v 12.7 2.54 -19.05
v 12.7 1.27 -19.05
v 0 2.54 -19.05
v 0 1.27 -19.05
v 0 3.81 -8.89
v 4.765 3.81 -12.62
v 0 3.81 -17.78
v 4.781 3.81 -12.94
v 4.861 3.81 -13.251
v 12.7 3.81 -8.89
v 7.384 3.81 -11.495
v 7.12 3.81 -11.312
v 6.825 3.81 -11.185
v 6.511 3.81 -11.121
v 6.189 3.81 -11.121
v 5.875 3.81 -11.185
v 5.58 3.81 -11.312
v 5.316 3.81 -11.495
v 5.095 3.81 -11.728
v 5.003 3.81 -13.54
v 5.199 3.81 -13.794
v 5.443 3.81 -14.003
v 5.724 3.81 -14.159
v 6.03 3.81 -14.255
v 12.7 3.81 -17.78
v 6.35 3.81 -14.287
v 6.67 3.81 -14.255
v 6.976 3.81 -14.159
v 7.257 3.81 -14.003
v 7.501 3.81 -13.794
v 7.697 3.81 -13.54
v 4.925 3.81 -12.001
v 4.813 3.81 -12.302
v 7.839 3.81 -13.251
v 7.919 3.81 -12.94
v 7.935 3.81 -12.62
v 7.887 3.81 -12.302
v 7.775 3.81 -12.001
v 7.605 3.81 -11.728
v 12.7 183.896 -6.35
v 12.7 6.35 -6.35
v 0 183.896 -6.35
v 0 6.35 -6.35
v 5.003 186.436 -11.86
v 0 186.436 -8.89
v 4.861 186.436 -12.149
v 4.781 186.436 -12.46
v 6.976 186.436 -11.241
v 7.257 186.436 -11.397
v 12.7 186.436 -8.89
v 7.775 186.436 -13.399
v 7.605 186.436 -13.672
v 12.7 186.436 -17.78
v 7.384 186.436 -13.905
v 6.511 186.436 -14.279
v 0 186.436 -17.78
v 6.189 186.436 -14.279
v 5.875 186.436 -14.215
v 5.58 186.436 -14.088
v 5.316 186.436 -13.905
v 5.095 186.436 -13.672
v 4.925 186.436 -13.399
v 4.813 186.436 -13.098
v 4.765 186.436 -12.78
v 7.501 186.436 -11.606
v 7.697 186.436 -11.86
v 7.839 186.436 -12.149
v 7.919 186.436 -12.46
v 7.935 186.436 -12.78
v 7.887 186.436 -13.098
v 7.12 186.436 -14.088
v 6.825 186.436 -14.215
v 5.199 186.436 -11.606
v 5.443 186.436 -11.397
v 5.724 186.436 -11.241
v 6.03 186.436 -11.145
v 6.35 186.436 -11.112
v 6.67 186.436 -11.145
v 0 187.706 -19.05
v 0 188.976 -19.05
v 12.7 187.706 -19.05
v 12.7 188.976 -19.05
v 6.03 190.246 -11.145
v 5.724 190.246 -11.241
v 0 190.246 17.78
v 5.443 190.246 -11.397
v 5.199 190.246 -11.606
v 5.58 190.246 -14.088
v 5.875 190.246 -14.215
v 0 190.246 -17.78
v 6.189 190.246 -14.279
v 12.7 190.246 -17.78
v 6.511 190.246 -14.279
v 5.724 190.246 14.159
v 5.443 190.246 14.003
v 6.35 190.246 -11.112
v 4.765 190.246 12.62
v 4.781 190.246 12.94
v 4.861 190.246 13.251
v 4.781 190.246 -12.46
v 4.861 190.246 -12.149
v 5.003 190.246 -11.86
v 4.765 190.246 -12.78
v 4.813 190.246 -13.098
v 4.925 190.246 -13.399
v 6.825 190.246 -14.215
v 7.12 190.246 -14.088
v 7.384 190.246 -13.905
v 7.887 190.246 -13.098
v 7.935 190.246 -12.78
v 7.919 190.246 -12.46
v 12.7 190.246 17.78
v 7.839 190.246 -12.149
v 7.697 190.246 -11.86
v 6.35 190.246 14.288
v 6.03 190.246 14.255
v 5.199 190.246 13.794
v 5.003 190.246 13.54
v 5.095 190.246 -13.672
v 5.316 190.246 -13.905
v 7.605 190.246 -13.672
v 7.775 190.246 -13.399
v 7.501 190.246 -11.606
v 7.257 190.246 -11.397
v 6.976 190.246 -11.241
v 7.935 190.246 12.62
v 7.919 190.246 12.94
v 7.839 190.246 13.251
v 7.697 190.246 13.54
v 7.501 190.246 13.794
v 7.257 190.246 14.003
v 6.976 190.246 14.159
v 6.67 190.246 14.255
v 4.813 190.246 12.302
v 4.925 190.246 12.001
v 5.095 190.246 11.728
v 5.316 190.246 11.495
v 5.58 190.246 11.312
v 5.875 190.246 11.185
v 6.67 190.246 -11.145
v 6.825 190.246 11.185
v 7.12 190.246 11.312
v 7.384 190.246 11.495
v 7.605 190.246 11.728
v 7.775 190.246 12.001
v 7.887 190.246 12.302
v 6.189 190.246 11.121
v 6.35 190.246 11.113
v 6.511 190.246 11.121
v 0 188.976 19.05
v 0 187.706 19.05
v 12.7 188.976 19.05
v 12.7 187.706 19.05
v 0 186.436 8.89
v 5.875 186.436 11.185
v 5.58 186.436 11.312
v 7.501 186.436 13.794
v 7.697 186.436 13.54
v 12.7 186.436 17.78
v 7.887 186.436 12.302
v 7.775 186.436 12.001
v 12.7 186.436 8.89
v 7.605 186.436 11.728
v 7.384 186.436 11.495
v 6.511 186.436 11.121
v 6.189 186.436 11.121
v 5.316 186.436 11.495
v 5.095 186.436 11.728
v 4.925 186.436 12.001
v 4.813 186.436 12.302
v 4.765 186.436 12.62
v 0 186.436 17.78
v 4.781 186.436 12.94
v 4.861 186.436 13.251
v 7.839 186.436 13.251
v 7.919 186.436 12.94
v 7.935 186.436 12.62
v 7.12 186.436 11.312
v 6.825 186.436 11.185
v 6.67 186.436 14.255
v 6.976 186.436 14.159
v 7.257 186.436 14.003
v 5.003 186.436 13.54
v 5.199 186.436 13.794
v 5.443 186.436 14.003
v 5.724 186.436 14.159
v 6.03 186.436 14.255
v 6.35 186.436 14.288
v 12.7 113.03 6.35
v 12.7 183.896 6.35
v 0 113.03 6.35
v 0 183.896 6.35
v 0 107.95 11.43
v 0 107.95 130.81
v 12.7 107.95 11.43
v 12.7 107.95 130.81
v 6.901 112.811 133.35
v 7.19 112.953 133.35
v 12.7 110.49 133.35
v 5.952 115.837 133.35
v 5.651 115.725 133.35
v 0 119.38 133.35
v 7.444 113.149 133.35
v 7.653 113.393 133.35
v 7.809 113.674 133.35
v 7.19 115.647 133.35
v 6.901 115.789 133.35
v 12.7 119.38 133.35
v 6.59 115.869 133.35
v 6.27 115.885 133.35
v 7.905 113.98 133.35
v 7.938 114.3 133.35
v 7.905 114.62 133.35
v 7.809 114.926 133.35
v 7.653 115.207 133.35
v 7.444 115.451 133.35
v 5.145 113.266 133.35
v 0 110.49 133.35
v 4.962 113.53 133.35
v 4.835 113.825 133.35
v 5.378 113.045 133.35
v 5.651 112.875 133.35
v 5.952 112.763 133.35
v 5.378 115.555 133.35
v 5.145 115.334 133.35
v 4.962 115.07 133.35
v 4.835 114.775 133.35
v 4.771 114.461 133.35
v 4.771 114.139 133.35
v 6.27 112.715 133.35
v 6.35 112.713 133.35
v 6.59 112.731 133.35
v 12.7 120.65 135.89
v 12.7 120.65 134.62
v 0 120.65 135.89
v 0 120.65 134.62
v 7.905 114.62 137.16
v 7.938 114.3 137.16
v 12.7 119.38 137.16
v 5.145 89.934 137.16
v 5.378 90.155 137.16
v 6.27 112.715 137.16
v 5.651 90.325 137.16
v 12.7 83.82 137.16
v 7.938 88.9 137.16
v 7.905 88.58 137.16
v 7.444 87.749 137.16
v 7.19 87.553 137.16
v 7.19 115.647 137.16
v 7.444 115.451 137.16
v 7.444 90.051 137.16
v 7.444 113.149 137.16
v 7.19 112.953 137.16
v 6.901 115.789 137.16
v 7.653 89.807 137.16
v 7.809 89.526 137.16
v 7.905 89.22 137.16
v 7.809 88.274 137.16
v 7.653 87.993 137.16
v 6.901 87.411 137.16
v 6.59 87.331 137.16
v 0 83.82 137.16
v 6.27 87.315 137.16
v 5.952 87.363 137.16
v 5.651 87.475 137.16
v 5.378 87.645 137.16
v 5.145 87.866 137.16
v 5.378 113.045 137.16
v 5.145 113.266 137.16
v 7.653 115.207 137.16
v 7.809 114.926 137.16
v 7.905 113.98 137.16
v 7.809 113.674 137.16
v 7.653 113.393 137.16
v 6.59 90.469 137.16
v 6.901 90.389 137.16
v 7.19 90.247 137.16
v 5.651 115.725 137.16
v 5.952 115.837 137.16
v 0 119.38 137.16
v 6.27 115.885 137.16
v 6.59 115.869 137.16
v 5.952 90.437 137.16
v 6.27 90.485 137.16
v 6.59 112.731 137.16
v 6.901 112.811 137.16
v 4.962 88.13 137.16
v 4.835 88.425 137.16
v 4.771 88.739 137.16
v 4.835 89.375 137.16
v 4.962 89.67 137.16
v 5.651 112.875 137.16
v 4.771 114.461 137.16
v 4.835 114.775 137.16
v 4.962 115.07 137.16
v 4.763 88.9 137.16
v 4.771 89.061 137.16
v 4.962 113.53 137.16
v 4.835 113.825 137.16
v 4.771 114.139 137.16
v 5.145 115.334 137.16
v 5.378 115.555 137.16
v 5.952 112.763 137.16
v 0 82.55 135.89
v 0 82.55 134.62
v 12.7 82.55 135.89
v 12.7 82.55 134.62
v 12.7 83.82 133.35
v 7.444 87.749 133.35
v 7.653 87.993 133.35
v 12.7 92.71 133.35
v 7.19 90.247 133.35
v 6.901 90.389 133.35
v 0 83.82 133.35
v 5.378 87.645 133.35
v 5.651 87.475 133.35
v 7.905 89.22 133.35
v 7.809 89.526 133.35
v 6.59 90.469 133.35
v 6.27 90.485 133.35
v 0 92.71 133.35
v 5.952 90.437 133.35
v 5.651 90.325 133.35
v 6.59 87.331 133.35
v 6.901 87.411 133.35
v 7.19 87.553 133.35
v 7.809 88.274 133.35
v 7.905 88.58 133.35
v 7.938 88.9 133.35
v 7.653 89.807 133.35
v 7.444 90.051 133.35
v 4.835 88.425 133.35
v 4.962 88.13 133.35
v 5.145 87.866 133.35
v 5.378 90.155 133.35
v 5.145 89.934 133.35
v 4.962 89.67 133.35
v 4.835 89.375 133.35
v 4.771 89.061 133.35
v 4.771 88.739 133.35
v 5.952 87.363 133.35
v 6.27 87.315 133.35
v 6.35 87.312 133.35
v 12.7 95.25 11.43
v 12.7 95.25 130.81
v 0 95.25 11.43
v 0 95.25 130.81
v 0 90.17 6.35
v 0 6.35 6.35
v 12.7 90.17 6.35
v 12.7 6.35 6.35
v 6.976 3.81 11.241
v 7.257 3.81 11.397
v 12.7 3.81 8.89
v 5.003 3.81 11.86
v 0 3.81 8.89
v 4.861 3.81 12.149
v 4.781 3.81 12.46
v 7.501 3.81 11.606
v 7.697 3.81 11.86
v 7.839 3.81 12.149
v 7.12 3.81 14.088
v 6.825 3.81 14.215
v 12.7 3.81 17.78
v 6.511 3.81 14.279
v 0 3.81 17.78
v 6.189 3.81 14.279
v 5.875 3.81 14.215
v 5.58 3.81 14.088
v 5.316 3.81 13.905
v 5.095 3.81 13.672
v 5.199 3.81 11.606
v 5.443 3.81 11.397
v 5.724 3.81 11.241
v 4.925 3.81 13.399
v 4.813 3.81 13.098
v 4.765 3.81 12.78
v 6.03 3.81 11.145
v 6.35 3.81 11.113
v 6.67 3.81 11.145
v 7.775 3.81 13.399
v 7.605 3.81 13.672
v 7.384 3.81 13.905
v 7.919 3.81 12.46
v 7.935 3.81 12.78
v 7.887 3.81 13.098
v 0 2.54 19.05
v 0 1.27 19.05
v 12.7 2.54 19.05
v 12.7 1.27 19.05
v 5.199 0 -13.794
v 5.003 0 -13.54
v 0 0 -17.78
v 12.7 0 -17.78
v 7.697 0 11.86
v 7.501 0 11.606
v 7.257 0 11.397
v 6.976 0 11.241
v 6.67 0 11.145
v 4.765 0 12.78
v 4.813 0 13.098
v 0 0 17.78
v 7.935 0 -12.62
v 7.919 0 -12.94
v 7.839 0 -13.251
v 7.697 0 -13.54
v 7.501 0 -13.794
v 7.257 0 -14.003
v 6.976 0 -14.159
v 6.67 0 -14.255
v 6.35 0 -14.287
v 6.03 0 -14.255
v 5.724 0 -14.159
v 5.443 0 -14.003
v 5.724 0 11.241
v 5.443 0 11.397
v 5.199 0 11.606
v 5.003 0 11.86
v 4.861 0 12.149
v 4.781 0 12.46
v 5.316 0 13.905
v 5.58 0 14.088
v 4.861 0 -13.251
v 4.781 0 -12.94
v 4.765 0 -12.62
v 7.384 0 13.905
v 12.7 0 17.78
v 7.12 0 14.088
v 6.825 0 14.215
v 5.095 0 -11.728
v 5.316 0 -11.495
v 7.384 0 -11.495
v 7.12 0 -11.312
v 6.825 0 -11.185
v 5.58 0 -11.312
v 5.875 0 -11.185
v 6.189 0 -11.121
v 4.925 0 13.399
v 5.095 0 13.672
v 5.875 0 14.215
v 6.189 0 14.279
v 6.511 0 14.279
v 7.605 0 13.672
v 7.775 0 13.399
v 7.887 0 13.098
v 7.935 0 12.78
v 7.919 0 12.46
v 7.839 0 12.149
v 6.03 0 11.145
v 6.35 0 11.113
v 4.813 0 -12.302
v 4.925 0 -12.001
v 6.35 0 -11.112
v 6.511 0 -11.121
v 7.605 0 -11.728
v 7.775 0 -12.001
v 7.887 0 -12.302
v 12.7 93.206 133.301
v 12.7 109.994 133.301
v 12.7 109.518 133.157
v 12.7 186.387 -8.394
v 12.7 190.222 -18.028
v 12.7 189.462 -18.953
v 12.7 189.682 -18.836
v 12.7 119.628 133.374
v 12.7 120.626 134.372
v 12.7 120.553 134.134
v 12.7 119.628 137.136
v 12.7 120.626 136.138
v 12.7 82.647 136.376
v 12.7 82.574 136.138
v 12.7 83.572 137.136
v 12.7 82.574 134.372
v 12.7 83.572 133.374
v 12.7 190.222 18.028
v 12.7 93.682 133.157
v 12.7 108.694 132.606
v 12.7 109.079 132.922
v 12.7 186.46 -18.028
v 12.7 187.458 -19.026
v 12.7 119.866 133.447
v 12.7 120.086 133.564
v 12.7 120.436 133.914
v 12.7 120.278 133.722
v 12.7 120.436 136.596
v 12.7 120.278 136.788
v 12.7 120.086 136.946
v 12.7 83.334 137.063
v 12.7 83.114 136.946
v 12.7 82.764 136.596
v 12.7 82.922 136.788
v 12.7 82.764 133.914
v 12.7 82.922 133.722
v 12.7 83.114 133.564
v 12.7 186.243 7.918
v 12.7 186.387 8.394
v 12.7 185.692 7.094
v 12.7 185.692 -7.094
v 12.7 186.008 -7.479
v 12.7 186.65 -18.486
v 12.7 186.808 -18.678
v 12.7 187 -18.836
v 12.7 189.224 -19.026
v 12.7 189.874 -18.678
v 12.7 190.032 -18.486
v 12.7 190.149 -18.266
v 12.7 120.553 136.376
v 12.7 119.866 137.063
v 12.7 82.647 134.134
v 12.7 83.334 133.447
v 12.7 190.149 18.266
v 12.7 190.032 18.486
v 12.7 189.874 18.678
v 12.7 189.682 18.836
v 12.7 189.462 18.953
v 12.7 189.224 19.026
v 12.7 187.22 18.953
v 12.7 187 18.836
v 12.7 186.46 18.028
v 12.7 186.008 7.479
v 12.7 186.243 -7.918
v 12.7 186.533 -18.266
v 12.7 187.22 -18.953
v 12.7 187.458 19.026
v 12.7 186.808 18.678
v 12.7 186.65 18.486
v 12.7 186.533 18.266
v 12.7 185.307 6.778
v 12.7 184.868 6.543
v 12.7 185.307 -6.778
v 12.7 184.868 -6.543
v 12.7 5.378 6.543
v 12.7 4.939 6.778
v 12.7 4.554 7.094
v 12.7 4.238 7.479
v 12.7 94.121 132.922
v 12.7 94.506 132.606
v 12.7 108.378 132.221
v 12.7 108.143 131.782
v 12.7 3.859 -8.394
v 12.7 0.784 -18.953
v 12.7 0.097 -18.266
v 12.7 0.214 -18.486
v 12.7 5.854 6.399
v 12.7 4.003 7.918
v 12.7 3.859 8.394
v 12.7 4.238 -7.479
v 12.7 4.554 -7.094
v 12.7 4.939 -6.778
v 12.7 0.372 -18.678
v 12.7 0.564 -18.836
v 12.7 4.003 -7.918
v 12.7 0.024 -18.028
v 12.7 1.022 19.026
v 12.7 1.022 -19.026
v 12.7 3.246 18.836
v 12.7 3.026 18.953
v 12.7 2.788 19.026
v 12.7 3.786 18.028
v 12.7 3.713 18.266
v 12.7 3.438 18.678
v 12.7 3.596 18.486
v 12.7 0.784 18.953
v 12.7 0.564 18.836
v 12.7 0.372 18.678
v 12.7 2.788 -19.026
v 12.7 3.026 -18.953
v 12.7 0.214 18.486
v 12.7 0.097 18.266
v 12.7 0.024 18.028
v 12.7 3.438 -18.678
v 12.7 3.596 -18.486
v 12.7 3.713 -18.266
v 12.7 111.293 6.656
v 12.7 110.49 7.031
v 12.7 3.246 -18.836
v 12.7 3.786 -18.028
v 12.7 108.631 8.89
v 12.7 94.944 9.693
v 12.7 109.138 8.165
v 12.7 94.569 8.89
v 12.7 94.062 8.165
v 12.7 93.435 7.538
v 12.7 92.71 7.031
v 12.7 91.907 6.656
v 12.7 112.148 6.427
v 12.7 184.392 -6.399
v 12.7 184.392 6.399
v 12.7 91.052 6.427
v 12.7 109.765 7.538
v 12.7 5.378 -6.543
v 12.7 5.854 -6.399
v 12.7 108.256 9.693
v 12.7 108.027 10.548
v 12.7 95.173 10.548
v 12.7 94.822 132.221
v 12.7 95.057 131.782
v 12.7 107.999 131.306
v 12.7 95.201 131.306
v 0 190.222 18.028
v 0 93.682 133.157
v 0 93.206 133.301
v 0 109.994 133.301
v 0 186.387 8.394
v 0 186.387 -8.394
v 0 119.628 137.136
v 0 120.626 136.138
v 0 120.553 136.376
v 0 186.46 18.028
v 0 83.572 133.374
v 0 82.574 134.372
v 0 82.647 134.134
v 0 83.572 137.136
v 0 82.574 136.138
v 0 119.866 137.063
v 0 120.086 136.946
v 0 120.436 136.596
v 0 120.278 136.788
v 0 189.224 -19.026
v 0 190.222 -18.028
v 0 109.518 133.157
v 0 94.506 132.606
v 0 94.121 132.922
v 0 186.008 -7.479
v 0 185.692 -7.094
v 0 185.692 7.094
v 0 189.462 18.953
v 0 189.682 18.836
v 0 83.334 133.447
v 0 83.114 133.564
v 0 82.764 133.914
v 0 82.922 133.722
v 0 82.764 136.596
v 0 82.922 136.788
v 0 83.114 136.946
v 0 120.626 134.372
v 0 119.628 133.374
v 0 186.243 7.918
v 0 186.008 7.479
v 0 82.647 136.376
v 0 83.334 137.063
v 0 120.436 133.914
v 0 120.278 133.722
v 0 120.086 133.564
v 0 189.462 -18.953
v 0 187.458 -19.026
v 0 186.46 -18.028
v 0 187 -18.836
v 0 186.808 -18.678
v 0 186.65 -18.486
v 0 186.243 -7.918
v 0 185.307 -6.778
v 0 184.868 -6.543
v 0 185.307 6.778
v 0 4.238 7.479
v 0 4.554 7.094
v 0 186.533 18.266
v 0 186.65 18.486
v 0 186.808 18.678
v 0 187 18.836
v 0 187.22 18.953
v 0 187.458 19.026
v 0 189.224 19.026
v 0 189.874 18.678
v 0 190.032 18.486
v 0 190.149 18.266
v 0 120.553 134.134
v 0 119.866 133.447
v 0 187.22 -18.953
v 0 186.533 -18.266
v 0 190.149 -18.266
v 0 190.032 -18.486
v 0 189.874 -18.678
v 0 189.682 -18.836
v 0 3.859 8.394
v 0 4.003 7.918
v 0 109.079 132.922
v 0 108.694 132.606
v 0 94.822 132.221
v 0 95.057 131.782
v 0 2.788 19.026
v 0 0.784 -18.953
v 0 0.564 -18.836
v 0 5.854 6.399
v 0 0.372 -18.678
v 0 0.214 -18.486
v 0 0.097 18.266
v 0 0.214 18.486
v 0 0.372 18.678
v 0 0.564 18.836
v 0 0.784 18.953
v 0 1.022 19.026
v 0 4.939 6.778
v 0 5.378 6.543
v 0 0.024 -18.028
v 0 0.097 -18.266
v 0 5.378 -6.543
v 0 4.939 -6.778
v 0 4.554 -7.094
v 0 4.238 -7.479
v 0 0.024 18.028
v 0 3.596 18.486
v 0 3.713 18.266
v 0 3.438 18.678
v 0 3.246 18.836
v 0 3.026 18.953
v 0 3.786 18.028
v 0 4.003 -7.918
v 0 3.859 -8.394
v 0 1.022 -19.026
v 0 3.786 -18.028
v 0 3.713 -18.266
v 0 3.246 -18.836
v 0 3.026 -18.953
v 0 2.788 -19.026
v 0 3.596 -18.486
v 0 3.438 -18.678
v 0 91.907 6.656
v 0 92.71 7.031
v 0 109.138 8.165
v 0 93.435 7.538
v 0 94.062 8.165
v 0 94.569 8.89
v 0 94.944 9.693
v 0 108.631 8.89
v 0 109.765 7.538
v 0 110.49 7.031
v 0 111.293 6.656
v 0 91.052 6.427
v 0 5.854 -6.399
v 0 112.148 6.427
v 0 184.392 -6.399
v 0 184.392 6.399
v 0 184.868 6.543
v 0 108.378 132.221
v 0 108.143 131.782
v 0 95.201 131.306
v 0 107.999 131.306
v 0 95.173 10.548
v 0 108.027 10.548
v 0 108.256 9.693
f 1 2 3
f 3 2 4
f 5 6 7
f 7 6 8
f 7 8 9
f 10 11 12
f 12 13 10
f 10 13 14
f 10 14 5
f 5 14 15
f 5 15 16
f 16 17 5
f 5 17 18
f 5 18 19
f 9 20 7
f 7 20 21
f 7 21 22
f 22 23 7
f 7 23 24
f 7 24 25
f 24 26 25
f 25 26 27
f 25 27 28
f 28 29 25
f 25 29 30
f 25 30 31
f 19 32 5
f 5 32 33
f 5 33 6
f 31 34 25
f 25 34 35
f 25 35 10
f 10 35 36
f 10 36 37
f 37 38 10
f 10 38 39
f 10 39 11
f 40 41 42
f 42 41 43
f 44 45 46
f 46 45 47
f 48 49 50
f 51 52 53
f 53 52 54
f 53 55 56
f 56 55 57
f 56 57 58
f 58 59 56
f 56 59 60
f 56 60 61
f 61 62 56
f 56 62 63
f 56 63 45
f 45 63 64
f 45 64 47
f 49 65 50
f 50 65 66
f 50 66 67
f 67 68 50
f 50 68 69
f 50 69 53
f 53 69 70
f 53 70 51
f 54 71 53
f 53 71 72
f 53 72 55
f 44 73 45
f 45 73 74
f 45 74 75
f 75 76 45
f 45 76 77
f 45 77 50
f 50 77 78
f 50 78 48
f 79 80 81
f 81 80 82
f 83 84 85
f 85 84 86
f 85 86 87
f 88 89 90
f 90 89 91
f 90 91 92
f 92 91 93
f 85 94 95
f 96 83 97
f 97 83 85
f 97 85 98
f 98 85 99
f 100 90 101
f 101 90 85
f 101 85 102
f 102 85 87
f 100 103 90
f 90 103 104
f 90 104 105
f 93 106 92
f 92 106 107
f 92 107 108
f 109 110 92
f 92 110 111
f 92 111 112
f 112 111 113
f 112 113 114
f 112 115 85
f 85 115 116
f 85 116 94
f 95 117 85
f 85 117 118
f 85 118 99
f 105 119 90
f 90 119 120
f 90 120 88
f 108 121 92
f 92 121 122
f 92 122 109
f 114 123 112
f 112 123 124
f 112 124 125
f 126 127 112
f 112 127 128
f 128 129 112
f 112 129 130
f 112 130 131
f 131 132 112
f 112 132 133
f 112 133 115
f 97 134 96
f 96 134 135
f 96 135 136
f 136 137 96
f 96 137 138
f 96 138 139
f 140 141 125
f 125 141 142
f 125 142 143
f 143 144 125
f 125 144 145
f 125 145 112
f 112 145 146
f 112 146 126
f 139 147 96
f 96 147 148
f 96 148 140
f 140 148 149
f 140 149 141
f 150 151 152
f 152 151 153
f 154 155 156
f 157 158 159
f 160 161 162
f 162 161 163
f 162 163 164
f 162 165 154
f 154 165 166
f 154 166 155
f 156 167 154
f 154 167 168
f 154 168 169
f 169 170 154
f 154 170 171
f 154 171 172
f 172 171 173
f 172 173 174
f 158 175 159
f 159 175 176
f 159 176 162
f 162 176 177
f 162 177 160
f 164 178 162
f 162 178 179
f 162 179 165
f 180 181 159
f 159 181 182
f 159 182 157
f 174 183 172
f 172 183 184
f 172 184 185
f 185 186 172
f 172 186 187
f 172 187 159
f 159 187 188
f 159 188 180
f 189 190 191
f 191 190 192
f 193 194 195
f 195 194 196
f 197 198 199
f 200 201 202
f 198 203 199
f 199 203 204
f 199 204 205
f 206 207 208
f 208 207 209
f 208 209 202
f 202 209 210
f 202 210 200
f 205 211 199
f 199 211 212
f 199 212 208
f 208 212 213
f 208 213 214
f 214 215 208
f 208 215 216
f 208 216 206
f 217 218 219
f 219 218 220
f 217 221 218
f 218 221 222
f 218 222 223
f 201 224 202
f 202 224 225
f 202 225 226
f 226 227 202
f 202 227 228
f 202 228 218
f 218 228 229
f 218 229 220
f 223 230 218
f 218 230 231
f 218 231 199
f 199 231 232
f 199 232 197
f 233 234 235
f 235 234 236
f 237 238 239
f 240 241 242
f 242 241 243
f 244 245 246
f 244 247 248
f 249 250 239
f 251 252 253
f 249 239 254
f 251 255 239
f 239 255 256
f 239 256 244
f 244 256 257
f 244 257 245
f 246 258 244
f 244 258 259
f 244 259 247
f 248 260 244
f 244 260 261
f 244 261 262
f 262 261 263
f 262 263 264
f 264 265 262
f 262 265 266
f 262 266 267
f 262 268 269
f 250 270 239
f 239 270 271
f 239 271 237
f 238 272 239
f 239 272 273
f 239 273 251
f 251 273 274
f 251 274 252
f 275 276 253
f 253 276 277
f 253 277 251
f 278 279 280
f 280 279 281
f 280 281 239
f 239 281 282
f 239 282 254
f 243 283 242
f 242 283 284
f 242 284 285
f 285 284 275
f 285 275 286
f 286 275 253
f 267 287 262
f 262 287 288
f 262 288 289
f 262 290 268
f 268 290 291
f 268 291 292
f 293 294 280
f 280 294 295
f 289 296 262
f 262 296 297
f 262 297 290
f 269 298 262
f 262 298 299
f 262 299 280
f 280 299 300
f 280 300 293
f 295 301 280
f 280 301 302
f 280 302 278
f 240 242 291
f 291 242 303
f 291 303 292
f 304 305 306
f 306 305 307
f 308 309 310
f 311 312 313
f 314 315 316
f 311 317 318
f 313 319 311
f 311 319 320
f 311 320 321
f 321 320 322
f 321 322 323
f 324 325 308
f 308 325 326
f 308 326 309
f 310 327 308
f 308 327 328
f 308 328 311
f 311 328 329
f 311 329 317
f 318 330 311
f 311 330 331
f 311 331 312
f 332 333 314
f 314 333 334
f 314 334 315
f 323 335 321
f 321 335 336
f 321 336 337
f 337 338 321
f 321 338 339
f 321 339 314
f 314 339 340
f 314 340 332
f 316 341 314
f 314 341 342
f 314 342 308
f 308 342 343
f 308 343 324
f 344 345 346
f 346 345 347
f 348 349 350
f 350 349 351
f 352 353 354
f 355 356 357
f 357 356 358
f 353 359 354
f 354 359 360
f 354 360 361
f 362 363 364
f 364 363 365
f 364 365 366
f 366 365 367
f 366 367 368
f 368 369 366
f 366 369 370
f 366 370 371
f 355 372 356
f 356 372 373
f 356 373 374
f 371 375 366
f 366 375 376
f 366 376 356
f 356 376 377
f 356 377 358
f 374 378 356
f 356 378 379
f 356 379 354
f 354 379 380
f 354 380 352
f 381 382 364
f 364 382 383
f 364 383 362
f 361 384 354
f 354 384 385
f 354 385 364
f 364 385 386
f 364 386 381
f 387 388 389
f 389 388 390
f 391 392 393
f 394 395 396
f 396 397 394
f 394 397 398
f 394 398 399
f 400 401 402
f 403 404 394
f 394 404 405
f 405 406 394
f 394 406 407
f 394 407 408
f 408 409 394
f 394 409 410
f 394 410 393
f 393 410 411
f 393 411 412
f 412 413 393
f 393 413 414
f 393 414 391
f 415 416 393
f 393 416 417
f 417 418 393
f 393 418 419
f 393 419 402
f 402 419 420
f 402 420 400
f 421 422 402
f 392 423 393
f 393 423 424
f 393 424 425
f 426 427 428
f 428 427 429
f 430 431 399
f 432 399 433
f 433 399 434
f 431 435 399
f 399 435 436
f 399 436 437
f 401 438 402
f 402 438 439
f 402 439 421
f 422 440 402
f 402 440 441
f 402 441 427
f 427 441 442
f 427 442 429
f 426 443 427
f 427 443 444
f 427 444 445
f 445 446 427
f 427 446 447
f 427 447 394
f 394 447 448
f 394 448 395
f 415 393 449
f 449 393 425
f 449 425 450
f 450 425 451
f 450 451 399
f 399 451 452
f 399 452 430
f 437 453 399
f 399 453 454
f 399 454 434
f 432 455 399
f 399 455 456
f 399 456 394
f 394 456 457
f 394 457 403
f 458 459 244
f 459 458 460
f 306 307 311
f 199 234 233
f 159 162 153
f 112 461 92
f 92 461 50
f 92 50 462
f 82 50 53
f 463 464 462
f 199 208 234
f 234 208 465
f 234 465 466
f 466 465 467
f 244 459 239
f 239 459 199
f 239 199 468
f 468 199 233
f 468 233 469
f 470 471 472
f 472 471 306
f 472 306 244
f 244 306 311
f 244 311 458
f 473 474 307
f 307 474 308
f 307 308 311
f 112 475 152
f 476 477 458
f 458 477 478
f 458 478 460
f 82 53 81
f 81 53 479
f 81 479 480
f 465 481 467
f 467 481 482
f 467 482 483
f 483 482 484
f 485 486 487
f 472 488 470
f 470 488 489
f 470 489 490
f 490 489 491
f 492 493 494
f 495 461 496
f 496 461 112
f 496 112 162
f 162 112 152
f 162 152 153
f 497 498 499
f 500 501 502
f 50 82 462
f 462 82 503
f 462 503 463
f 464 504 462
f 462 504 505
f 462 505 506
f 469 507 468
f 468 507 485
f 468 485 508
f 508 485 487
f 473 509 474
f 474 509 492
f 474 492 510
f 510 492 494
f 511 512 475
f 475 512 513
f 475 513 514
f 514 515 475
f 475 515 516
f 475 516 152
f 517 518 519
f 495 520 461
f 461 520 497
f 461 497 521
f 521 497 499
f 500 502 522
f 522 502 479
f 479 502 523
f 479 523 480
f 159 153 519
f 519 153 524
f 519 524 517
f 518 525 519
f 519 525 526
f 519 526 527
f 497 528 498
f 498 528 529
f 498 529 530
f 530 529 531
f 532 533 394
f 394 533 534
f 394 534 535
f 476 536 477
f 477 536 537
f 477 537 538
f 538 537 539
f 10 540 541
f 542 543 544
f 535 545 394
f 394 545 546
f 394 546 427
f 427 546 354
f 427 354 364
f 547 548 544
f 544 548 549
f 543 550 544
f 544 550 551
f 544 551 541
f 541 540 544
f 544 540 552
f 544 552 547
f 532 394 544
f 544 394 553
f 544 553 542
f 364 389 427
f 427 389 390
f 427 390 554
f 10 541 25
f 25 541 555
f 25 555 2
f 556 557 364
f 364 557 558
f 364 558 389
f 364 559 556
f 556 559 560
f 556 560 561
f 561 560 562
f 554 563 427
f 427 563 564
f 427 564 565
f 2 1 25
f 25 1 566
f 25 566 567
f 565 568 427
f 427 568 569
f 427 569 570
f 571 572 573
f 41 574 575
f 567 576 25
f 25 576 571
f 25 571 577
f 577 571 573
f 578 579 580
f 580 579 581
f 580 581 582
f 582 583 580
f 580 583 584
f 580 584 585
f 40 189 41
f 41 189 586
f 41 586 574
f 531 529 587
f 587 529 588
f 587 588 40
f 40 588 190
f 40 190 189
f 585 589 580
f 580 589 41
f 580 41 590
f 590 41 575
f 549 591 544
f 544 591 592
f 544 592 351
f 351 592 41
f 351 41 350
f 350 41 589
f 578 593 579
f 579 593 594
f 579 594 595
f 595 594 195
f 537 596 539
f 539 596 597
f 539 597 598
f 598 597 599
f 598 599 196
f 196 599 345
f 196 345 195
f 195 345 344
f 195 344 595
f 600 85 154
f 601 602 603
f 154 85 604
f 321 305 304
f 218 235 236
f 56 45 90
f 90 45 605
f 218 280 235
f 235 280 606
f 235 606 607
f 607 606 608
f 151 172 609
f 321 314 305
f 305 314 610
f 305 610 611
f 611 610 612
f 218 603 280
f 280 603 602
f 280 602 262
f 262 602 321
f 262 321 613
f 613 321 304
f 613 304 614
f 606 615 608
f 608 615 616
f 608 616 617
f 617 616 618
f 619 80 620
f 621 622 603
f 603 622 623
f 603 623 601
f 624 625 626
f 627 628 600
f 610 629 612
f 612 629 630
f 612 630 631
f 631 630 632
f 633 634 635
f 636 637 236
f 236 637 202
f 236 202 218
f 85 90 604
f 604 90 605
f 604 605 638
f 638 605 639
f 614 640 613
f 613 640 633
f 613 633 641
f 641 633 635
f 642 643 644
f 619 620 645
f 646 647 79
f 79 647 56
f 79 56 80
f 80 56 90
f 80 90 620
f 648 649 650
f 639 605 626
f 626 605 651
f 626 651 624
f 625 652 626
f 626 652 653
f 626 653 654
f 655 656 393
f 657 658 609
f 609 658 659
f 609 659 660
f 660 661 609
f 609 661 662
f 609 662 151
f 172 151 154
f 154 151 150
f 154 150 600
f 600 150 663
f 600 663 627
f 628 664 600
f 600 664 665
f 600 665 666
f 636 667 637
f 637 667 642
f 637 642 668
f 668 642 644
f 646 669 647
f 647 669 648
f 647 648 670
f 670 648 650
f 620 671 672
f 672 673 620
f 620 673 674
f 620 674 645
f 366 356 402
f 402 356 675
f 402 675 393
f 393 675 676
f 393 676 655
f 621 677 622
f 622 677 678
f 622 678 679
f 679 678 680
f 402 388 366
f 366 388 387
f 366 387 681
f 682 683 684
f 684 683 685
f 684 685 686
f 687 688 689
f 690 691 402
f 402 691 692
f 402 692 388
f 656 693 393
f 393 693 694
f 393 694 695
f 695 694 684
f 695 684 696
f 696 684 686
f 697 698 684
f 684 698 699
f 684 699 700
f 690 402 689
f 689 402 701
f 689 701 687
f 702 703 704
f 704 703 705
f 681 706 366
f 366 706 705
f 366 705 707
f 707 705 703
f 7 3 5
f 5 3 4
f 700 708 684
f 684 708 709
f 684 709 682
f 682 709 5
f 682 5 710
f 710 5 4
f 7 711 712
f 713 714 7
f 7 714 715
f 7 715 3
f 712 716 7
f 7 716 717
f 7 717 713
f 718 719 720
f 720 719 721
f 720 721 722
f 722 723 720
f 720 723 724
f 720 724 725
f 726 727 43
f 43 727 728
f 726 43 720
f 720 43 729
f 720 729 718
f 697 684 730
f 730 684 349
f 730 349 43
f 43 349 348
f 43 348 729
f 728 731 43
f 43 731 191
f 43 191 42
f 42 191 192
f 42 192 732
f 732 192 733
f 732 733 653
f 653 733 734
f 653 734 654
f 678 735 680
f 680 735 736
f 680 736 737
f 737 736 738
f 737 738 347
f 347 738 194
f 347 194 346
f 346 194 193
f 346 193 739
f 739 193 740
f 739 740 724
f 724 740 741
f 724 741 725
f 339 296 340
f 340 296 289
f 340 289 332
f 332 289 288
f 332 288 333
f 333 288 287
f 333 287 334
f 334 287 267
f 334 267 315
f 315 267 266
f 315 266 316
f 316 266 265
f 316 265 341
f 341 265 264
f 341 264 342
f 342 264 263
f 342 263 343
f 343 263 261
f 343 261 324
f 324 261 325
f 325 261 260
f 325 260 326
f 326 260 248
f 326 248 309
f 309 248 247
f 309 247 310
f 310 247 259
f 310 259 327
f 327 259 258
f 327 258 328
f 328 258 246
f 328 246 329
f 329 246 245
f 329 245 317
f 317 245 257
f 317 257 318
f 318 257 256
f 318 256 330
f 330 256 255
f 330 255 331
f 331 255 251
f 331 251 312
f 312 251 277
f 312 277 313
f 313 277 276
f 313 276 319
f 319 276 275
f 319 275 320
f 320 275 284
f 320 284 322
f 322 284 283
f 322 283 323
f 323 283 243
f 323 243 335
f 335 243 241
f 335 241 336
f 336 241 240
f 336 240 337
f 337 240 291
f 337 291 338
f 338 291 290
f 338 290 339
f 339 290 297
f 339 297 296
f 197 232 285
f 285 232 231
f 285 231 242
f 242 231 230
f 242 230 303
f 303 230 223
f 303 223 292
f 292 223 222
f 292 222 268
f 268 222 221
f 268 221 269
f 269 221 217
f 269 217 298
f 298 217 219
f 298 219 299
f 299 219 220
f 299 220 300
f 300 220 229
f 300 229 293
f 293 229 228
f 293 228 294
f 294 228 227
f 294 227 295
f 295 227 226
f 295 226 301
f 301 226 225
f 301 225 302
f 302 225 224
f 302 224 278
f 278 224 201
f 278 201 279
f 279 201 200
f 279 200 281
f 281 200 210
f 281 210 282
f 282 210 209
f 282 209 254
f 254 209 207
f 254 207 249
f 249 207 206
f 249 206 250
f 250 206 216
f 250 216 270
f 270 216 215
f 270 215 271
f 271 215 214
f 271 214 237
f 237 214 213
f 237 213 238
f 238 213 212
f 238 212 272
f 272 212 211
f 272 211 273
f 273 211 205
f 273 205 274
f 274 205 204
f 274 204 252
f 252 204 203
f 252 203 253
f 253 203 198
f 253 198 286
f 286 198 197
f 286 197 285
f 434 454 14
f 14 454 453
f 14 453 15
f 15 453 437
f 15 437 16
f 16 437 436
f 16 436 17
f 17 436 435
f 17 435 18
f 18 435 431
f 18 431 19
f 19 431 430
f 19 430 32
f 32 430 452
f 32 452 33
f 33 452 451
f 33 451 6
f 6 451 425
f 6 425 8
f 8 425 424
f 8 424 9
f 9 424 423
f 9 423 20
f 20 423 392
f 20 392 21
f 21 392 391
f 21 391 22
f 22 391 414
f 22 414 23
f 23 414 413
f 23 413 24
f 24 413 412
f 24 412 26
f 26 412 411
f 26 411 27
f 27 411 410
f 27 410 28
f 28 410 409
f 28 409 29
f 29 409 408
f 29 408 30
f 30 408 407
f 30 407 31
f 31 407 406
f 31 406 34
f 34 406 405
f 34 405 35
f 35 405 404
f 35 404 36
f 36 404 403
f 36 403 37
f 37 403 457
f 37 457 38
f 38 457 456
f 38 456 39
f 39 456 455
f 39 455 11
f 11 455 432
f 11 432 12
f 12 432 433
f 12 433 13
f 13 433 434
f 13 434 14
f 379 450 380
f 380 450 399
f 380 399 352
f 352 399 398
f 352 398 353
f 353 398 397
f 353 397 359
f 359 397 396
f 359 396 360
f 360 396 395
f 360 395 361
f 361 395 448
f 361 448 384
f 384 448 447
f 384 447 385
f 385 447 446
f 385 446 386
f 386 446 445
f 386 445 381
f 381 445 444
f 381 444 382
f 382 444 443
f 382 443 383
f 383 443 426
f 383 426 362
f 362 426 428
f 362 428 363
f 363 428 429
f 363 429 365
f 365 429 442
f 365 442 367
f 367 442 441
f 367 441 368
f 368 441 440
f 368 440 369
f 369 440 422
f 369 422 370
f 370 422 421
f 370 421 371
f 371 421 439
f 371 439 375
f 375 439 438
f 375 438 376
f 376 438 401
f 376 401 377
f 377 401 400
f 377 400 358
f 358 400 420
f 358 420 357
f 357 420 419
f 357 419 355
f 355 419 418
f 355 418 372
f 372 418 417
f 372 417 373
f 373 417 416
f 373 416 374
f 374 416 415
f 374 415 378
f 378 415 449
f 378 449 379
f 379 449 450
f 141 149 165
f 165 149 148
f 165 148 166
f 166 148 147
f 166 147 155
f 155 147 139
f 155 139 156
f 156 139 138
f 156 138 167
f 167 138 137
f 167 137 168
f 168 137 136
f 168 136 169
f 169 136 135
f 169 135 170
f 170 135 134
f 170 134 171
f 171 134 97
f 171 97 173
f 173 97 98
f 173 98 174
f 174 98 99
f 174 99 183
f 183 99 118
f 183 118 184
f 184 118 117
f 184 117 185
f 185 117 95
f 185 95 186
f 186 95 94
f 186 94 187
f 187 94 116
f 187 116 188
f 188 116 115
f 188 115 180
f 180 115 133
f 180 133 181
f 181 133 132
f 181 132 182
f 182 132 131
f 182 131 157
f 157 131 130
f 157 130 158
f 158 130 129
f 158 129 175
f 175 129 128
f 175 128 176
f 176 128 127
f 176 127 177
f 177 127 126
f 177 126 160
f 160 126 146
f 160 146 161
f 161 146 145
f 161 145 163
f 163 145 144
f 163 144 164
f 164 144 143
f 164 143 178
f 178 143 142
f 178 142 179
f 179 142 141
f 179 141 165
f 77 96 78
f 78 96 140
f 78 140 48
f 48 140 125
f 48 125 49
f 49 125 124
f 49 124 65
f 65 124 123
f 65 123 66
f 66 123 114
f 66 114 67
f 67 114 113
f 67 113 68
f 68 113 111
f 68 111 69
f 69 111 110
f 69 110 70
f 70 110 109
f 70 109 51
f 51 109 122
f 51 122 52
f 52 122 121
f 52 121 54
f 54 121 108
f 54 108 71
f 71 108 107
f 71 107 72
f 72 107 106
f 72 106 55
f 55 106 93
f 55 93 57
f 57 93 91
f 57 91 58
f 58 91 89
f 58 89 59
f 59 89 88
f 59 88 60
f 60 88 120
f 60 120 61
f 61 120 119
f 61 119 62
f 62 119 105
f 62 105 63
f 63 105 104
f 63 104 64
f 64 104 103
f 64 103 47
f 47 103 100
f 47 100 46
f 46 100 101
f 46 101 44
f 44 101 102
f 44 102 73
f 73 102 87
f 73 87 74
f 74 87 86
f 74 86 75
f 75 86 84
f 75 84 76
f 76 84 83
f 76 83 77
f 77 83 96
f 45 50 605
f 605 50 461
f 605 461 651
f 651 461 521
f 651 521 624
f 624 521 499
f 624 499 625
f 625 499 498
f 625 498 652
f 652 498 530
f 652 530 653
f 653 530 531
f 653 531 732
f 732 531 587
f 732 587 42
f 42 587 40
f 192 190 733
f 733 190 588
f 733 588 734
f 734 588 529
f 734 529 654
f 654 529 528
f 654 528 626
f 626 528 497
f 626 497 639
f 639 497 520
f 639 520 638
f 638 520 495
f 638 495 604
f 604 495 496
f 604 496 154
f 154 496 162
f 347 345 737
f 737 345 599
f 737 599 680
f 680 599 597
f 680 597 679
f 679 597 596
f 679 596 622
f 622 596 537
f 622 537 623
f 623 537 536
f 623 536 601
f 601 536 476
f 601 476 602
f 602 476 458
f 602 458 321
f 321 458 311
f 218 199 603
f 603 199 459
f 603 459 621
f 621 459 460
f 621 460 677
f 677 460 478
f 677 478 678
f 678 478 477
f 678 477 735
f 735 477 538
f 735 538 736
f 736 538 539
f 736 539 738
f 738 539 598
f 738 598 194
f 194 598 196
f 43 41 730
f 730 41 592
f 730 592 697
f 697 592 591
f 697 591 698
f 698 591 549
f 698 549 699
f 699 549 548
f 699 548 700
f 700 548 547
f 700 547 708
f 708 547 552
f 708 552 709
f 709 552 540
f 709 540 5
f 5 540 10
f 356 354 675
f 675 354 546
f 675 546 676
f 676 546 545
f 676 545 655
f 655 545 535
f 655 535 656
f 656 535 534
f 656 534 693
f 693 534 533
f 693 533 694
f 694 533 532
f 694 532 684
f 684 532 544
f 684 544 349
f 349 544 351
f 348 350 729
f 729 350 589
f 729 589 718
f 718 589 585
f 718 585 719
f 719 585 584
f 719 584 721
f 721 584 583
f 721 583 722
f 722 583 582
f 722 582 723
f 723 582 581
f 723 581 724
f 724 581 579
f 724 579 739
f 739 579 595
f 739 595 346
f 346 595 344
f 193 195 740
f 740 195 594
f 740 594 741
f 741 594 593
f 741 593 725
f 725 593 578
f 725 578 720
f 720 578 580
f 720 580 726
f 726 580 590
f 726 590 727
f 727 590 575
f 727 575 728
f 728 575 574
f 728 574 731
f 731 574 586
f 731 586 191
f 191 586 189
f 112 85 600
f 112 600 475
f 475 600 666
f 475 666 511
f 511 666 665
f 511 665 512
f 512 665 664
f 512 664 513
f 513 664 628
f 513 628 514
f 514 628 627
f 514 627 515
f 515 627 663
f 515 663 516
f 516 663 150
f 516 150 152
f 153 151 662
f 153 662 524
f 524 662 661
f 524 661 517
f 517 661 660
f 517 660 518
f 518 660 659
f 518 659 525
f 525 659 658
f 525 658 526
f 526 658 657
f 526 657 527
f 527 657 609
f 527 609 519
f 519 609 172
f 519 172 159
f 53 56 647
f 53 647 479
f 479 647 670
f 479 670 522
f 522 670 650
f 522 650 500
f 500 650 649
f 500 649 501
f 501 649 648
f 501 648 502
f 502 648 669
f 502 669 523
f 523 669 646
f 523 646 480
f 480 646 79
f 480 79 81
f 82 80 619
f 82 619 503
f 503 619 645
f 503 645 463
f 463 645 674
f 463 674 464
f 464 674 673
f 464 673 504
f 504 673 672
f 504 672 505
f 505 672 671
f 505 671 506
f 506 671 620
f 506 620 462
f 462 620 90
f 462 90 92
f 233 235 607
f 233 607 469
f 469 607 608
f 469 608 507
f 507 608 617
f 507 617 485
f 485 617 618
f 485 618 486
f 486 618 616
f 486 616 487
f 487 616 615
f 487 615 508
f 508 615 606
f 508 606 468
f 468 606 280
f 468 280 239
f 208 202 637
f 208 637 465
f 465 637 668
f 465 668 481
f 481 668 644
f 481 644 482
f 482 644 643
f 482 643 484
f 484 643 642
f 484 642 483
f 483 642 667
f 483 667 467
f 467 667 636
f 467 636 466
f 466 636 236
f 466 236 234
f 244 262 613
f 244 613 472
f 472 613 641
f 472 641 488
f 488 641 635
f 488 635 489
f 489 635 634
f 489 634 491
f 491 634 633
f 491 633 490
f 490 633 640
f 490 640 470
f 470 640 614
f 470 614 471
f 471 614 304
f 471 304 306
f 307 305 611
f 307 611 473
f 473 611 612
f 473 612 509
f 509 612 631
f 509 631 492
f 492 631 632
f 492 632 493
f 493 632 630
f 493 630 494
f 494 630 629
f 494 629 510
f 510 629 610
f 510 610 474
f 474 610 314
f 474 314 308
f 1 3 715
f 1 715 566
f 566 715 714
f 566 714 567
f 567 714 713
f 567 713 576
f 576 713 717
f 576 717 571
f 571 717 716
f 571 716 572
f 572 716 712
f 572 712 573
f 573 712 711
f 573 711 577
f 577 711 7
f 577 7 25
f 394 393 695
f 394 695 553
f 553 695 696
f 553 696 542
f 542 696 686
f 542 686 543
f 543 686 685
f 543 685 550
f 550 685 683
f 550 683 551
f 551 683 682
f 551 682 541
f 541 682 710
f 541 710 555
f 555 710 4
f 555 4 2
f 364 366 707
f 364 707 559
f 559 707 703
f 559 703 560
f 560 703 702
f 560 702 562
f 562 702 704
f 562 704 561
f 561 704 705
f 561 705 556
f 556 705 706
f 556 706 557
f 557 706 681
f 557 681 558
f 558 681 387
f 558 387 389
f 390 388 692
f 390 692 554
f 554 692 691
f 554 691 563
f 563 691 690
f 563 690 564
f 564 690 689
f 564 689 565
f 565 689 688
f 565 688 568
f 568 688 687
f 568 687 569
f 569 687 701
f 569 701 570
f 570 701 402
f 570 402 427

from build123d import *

# Parameters (mm, degrees)
BOSS_EXTRUDE1_DEPTH          = 12.7
SKETCH2_R                    = 1.5875
SIDE_MOUNT_HOLES_DEPTH       = 12.7
SKETCH3_R                    = 1.5875
TOP_BOTTOM_MOUNT_HOLES_DEPTH = 12.7
FILLET1_R                    = 2.54
FILLET2_R                    = 5.08
FILLET3_R                    = 1.27


with BuildPart() as part:
    # Sketch1 → Boss-Extrude1 (new body)
    with BuildSketch(Plane(origin=(0, 0, 0), x_dir=(0, 0, -1), z_dir=(1, 0, 0))):
        Polygon((0, 0), (-19.05, 0), (-19.05, 3.81), (-6.35, 3.81), (-6.35, 95.25), (-133.35, 95.25), (-133.35, 82.55), (-137.16, 82.55), (-137.16, 120.65), (-133.35, 120.65), (-133.35, 107.95), (-6.35, 107.95), (-6.35, 186.436), (-19.05, 186.436), (-19.05, 190.246), (19.05, 190.246), (19.05, 186.436), (6.35, 186.436), (6.35, 3.81), (19.05, 3.81), (19.05, 0), align=None)
    extrude(amount=BOSS_EXTRUDE1_DEPTH)

    # Sketch2 → Side_mount_holes (cut)
    with BuildSketch(Plane.XY.offset(137.16)):
        with Locations((6.35, 114.3)):
            Circle(SKETCH2_R)
        with Locations(Location((6.35, 88.9, 0), (0, 0, 270))):
            Circle(SKETCH2_R)
    extrude(amount=-SIDE_MOUNT_HOLES_DEPTH, mode=Mode.SUBTRACT)

    # Sketch3 → top_Bottom_mount_holes (cut)
    with BuildSketch(Plane.XZ):
        with Locations(Location((6.35, 12.7, 0), (0, 0, 270))):
            Circle(SKETCH3_R)
        with Locations(Location((6.35, -12.7, 0), (0, 0, 270))):
            Circle(SKETCH3_R)
    top_bottom_mount_holes = extrude(amount=-TOP_BOTTOM_MOUNT_HOLES_DEPTH, mode=Mode.SUBTRACT)

    # Mirror1: top_Bottom_mount_holes across plane
    add(top_bottom_mount_holes.mirror(Plane(origin=(0, 95.123, 0), x_dir=(0, 0, 1), z_dir=(0, -1, 0))), mode=Mode.SUBTRACT)

    # Fillet1
    fillet1_edges = [part.edges().sort_by_distance(p)[0] for p in [
        (6.35, 3.81, 6.35),
        (6.35, 95.25, 133.35),
        (6.35, 107.95, 133.35),
        (6.35, 186.436, 6.35),
        (6.35, 186.436, -6.35),
        (6.35, 3.81, -6.35),
    ]]
    fillet(fillet1_edges, radius=FILLET1_R)

    # Fillet2
    fillet2_edges = [part.edges().sort_by_distance(p)[0] for p in [
        (6.35, 95.25, 6.35),
        (6.35, 107.95, 6.35),
    ]]
    fillet(fillet2_edges, radius=FILLET2_R)

    # Fillet3
    fillet3_edges = [part.edges().sort_by_distance(p)[0] for p in [
        (6.35, 0, 19.05),
        (6.35, 3.81, 19.05),
        (6.35, 82.55, 133.35),
        (6.35, 82.55, 137.16),
        (6.35, 120.65, 137.16),
        (6.35, 120.65, 133.35),
        (6.35, 186.436, 19.05),
        (6.35, 190.246, 19.05),
        (6.35, 190.246, -19.05),
        (6.35, 186.436, -19.05),
        (6.35, 3.81, -19.05),
        (6.35, 0, -19.05),
    ]]
    fillet(fillet3_edges, radius=FILLET3_R)


solid = part.part
